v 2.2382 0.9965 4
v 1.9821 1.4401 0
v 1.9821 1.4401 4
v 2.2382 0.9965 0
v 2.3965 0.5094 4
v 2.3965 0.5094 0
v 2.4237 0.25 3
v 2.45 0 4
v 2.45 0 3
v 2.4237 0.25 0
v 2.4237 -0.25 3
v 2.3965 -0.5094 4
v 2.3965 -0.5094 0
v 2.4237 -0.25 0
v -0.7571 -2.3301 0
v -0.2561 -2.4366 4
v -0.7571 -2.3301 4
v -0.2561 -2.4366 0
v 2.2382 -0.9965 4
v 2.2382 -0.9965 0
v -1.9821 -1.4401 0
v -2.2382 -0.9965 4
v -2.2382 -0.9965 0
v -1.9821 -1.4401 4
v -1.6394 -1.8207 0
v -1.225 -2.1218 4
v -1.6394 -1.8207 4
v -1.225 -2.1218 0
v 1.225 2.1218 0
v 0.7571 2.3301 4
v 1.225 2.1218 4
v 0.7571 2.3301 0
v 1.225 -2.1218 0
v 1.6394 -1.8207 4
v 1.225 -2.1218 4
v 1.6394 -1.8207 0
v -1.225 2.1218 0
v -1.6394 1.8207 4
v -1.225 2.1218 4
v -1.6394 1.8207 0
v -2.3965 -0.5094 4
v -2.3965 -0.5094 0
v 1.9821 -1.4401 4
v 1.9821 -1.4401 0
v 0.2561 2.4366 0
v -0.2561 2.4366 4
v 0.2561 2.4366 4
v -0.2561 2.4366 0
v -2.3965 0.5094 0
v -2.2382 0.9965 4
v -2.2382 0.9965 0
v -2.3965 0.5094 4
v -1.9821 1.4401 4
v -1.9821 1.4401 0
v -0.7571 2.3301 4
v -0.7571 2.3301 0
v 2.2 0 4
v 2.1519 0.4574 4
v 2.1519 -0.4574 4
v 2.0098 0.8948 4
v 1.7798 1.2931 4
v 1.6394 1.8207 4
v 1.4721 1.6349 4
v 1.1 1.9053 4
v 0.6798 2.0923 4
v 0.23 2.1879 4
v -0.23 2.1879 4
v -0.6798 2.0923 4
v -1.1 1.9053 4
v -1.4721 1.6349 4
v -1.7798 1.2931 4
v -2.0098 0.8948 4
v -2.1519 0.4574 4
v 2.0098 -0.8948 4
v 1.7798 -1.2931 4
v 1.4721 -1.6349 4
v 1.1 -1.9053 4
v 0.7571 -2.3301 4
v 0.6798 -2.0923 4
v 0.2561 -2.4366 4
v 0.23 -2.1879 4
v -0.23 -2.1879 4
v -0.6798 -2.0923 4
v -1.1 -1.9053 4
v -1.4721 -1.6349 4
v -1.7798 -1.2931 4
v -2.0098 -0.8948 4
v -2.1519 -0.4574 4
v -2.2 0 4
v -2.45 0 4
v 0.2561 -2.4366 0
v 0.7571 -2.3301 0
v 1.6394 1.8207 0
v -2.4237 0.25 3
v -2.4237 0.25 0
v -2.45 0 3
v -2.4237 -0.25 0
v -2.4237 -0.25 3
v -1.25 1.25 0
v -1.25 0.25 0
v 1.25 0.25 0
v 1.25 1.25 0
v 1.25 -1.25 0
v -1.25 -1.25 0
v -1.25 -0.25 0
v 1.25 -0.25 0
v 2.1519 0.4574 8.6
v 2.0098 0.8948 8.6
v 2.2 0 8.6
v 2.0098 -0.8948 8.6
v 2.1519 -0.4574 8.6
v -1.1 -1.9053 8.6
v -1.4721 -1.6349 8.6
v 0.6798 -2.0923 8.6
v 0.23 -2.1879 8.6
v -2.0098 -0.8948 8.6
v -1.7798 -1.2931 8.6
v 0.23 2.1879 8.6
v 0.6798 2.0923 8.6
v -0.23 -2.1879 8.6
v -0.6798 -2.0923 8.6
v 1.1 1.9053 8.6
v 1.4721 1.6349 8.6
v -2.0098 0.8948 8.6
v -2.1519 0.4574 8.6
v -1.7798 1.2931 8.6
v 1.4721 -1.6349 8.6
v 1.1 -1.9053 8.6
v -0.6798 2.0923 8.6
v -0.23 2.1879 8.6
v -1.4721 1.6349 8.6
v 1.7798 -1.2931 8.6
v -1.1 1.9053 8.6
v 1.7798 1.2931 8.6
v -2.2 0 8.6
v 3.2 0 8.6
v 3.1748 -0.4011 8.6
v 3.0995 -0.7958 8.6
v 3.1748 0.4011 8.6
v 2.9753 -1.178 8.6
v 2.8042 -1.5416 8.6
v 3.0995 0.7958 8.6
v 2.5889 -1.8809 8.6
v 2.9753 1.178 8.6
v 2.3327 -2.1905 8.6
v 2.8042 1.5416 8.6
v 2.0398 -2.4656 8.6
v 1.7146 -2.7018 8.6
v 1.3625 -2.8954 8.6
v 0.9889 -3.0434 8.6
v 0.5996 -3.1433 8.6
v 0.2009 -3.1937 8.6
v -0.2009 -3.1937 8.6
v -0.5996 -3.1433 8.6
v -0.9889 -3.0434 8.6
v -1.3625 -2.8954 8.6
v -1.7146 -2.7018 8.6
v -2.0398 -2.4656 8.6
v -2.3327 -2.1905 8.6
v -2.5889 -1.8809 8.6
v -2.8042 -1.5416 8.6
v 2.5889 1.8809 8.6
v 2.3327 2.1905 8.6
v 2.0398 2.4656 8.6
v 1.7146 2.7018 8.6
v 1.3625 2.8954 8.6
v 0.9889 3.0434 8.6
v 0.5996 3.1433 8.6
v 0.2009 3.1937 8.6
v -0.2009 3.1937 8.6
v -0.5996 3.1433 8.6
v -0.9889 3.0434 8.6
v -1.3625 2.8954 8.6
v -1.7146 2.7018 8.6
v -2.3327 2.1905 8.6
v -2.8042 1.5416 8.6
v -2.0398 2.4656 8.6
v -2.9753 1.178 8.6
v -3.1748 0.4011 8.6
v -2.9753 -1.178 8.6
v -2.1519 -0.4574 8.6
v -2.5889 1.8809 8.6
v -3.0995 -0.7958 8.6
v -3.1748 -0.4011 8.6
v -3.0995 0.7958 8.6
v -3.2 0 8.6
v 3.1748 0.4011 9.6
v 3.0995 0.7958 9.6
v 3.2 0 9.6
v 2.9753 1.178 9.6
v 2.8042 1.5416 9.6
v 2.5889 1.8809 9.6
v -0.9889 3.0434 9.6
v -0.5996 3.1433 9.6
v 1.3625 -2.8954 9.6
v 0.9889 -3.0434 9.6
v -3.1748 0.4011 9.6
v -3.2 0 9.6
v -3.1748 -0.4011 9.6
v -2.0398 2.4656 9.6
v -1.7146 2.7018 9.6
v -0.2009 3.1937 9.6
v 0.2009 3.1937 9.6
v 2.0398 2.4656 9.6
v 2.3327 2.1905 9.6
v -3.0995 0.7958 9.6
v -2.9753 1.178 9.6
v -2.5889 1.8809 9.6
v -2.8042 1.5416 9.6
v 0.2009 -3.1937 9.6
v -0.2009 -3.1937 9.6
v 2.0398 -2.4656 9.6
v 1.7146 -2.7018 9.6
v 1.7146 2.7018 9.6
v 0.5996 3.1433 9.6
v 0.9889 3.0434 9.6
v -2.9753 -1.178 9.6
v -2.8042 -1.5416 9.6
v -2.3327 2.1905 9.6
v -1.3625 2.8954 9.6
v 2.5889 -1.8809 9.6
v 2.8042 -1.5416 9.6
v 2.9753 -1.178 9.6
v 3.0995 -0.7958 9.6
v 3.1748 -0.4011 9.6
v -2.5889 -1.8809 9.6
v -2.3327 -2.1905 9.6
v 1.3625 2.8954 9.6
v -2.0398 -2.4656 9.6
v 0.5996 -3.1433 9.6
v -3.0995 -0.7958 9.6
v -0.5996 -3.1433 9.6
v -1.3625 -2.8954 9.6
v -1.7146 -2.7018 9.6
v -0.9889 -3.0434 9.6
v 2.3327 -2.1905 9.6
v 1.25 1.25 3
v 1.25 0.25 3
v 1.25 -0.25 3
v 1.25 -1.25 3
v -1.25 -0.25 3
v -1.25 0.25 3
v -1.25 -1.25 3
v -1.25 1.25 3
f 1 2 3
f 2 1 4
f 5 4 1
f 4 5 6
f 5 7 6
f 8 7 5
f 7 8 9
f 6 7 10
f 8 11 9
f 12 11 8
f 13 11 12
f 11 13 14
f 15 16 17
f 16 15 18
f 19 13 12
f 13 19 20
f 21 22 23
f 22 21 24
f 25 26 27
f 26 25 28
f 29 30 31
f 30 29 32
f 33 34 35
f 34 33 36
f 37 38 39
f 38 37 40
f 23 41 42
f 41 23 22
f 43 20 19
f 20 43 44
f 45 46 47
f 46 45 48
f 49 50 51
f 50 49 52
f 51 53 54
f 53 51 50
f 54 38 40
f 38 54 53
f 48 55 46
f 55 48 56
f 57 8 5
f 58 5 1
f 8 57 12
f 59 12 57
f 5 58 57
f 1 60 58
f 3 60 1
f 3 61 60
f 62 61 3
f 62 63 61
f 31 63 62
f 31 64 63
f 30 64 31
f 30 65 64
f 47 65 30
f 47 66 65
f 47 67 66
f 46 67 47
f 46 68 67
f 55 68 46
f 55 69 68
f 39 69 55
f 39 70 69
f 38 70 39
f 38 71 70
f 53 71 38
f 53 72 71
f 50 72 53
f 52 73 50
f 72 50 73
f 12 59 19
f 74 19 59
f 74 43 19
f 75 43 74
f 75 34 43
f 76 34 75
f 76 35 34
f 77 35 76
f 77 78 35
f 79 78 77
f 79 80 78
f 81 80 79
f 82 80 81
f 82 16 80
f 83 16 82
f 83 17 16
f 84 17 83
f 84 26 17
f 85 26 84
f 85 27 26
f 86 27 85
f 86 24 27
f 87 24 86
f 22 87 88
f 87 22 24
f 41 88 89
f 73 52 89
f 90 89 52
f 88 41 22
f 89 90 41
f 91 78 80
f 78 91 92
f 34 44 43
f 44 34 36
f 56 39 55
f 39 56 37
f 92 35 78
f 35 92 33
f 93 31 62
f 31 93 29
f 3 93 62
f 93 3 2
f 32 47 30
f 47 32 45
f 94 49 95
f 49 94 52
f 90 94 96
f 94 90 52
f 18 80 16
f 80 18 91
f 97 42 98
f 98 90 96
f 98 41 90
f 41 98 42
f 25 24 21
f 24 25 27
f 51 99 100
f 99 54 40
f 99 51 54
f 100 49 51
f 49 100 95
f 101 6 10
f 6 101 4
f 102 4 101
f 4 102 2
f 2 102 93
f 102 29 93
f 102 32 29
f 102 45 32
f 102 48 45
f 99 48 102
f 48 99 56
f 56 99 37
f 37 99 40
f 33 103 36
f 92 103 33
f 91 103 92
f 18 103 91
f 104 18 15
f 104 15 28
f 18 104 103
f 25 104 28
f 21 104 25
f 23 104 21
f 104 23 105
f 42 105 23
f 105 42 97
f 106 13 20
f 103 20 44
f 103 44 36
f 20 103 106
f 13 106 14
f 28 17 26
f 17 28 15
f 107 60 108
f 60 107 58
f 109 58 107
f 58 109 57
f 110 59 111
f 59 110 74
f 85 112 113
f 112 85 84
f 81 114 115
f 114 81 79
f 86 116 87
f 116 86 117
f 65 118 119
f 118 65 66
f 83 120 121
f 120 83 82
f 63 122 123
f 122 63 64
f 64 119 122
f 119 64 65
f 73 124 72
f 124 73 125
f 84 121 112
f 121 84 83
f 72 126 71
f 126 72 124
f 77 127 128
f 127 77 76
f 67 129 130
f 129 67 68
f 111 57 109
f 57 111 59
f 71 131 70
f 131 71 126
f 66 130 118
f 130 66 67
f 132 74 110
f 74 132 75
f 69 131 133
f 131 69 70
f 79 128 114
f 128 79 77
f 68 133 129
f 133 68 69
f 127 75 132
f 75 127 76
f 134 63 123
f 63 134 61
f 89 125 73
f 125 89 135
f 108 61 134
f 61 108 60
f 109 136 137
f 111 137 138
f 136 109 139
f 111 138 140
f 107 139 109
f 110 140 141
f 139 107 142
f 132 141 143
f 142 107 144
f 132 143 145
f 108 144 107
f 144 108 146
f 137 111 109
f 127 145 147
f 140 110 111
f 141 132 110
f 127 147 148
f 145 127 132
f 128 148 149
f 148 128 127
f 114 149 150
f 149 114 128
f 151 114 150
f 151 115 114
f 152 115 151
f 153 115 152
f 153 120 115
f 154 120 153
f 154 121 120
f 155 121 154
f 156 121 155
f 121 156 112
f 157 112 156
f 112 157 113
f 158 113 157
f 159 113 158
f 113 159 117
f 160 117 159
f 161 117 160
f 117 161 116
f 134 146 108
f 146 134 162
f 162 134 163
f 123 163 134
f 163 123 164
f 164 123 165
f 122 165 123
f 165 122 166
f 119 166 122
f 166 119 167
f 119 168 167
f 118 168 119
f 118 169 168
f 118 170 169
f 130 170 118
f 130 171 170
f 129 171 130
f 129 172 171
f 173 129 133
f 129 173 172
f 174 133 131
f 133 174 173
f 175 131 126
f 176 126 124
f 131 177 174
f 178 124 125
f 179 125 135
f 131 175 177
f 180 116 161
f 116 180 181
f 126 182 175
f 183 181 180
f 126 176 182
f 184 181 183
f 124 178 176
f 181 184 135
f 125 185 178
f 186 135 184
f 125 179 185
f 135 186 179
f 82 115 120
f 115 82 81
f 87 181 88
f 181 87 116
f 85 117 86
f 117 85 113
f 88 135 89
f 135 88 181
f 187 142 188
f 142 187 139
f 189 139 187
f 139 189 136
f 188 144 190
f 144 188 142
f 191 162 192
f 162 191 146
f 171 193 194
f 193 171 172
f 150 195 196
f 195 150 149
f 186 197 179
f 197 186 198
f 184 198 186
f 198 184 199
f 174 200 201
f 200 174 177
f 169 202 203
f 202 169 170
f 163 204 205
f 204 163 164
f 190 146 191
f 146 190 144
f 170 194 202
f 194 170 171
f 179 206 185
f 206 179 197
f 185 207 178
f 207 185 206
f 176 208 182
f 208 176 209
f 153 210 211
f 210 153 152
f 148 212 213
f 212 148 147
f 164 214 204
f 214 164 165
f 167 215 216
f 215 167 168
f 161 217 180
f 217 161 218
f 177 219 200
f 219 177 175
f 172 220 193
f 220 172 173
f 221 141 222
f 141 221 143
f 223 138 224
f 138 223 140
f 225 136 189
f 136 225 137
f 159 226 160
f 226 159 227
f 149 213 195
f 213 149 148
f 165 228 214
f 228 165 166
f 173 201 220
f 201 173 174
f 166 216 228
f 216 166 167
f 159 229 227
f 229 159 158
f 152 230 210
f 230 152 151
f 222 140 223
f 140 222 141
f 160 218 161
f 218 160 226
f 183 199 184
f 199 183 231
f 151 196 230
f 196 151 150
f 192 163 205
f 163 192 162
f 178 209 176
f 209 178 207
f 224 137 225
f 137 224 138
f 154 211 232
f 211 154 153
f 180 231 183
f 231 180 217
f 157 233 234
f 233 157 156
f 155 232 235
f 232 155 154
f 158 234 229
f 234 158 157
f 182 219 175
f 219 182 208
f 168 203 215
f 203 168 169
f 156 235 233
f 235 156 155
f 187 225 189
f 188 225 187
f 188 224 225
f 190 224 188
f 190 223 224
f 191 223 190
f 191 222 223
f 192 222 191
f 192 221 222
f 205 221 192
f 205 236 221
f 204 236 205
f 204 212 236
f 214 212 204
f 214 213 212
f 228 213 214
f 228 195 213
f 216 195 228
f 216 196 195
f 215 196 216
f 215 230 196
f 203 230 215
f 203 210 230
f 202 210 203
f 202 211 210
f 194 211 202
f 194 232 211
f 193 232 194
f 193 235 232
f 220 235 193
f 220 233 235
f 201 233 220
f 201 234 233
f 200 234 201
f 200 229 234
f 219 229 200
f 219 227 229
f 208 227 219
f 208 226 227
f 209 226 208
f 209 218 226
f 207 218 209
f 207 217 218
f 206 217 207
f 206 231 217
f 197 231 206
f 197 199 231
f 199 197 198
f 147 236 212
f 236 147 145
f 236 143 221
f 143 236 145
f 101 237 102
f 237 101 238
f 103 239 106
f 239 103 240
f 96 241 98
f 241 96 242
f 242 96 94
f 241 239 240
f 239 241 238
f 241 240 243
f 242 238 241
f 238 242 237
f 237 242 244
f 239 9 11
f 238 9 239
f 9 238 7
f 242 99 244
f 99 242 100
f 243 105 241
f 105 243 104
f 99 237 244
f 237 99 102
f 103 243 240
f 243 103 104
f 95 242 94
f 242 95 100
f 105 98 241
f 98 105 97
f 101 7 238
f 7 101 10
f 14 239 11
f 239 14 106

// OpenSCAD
// file: common.scad
case_size_factor = 1.8;
case = [100*case_size_factor, 61*case_size_factor, 38*case_size_factor];

thickness = 2;

inner_cyl_radius = 6.5;
inner_cyl_shift = 10; //$case[2]/5;
inner_cyl_x = case[0]/2-inner_cyl_shift-0.5;
inner_cyl_z = case[2]/2-inner_cyl_shift+0.1;
inner_cyl_h = 18;

screen_size = [59.3, 29.3, 1.5];
screen_visible_size = [52, 27, 3];

speaker = [68, 60, 45]; // diag 85
speaker_screw_dist = 52;

foot_radius = 10;
foot_dist_factor = [0.7, 0.85];

vent = 50;

pcb_screw = [157, 48, 3.5]; // width, height, diam
pcb_screw_insert = [3, 7.9]; // height, diam
usb = [11, 3.5];
usb_from_middle = 2;
sdcard = [15, 3];

pin_header_height = 8;
pin_socket_height = 3;
pcb_interspace = pin_header_height + pin_socket_height;
pcb_thickness = 1.6;

front_panel = [case[0] - thickness * 2, pcb_thickness * 2 + pcb_interspace, case[2] - thickness * 2];

screen_holder_screw_rad = 2;
screen_holder_out = [screen_holder_screw_rad*3, 63, 3];
screen_holder_in = [70.4, 39.2, 4];
screen_size_toborder = 7.1;
// main file
include <common.scad>;

outer_diam = 4.4;   // pcb holes are 5mm
depth = 6 + 1.6 + 1;

//btn_size = 2.4;	// Ok, tight
btn_size = 2.5;	// Ok, loose
btn = [btn_size, btn_size, 3];
fente = [1.3, 0.5, 3];

module body() {
    cylinder(h=4, d=outer_diam+0.5, $fn=30);
    cylinder(h=depth, d=outer_diam, $fn=30);
    translate([0, 0, depth]) cylinder(h=1, d=outer_diam+2, $fn=50);
}

difference() {
    body();
    translate([0, 0, btn[2]/2]) cube(btn, center=true);
    translate([-btn[0]/2-fente[0]/2, 0, fente[2]/2]) cube(fente, center=true);
    translate([+btn[0]/2+fente[0]/2, 0, fente[2]/2]) cube(fente, center=true);
}
